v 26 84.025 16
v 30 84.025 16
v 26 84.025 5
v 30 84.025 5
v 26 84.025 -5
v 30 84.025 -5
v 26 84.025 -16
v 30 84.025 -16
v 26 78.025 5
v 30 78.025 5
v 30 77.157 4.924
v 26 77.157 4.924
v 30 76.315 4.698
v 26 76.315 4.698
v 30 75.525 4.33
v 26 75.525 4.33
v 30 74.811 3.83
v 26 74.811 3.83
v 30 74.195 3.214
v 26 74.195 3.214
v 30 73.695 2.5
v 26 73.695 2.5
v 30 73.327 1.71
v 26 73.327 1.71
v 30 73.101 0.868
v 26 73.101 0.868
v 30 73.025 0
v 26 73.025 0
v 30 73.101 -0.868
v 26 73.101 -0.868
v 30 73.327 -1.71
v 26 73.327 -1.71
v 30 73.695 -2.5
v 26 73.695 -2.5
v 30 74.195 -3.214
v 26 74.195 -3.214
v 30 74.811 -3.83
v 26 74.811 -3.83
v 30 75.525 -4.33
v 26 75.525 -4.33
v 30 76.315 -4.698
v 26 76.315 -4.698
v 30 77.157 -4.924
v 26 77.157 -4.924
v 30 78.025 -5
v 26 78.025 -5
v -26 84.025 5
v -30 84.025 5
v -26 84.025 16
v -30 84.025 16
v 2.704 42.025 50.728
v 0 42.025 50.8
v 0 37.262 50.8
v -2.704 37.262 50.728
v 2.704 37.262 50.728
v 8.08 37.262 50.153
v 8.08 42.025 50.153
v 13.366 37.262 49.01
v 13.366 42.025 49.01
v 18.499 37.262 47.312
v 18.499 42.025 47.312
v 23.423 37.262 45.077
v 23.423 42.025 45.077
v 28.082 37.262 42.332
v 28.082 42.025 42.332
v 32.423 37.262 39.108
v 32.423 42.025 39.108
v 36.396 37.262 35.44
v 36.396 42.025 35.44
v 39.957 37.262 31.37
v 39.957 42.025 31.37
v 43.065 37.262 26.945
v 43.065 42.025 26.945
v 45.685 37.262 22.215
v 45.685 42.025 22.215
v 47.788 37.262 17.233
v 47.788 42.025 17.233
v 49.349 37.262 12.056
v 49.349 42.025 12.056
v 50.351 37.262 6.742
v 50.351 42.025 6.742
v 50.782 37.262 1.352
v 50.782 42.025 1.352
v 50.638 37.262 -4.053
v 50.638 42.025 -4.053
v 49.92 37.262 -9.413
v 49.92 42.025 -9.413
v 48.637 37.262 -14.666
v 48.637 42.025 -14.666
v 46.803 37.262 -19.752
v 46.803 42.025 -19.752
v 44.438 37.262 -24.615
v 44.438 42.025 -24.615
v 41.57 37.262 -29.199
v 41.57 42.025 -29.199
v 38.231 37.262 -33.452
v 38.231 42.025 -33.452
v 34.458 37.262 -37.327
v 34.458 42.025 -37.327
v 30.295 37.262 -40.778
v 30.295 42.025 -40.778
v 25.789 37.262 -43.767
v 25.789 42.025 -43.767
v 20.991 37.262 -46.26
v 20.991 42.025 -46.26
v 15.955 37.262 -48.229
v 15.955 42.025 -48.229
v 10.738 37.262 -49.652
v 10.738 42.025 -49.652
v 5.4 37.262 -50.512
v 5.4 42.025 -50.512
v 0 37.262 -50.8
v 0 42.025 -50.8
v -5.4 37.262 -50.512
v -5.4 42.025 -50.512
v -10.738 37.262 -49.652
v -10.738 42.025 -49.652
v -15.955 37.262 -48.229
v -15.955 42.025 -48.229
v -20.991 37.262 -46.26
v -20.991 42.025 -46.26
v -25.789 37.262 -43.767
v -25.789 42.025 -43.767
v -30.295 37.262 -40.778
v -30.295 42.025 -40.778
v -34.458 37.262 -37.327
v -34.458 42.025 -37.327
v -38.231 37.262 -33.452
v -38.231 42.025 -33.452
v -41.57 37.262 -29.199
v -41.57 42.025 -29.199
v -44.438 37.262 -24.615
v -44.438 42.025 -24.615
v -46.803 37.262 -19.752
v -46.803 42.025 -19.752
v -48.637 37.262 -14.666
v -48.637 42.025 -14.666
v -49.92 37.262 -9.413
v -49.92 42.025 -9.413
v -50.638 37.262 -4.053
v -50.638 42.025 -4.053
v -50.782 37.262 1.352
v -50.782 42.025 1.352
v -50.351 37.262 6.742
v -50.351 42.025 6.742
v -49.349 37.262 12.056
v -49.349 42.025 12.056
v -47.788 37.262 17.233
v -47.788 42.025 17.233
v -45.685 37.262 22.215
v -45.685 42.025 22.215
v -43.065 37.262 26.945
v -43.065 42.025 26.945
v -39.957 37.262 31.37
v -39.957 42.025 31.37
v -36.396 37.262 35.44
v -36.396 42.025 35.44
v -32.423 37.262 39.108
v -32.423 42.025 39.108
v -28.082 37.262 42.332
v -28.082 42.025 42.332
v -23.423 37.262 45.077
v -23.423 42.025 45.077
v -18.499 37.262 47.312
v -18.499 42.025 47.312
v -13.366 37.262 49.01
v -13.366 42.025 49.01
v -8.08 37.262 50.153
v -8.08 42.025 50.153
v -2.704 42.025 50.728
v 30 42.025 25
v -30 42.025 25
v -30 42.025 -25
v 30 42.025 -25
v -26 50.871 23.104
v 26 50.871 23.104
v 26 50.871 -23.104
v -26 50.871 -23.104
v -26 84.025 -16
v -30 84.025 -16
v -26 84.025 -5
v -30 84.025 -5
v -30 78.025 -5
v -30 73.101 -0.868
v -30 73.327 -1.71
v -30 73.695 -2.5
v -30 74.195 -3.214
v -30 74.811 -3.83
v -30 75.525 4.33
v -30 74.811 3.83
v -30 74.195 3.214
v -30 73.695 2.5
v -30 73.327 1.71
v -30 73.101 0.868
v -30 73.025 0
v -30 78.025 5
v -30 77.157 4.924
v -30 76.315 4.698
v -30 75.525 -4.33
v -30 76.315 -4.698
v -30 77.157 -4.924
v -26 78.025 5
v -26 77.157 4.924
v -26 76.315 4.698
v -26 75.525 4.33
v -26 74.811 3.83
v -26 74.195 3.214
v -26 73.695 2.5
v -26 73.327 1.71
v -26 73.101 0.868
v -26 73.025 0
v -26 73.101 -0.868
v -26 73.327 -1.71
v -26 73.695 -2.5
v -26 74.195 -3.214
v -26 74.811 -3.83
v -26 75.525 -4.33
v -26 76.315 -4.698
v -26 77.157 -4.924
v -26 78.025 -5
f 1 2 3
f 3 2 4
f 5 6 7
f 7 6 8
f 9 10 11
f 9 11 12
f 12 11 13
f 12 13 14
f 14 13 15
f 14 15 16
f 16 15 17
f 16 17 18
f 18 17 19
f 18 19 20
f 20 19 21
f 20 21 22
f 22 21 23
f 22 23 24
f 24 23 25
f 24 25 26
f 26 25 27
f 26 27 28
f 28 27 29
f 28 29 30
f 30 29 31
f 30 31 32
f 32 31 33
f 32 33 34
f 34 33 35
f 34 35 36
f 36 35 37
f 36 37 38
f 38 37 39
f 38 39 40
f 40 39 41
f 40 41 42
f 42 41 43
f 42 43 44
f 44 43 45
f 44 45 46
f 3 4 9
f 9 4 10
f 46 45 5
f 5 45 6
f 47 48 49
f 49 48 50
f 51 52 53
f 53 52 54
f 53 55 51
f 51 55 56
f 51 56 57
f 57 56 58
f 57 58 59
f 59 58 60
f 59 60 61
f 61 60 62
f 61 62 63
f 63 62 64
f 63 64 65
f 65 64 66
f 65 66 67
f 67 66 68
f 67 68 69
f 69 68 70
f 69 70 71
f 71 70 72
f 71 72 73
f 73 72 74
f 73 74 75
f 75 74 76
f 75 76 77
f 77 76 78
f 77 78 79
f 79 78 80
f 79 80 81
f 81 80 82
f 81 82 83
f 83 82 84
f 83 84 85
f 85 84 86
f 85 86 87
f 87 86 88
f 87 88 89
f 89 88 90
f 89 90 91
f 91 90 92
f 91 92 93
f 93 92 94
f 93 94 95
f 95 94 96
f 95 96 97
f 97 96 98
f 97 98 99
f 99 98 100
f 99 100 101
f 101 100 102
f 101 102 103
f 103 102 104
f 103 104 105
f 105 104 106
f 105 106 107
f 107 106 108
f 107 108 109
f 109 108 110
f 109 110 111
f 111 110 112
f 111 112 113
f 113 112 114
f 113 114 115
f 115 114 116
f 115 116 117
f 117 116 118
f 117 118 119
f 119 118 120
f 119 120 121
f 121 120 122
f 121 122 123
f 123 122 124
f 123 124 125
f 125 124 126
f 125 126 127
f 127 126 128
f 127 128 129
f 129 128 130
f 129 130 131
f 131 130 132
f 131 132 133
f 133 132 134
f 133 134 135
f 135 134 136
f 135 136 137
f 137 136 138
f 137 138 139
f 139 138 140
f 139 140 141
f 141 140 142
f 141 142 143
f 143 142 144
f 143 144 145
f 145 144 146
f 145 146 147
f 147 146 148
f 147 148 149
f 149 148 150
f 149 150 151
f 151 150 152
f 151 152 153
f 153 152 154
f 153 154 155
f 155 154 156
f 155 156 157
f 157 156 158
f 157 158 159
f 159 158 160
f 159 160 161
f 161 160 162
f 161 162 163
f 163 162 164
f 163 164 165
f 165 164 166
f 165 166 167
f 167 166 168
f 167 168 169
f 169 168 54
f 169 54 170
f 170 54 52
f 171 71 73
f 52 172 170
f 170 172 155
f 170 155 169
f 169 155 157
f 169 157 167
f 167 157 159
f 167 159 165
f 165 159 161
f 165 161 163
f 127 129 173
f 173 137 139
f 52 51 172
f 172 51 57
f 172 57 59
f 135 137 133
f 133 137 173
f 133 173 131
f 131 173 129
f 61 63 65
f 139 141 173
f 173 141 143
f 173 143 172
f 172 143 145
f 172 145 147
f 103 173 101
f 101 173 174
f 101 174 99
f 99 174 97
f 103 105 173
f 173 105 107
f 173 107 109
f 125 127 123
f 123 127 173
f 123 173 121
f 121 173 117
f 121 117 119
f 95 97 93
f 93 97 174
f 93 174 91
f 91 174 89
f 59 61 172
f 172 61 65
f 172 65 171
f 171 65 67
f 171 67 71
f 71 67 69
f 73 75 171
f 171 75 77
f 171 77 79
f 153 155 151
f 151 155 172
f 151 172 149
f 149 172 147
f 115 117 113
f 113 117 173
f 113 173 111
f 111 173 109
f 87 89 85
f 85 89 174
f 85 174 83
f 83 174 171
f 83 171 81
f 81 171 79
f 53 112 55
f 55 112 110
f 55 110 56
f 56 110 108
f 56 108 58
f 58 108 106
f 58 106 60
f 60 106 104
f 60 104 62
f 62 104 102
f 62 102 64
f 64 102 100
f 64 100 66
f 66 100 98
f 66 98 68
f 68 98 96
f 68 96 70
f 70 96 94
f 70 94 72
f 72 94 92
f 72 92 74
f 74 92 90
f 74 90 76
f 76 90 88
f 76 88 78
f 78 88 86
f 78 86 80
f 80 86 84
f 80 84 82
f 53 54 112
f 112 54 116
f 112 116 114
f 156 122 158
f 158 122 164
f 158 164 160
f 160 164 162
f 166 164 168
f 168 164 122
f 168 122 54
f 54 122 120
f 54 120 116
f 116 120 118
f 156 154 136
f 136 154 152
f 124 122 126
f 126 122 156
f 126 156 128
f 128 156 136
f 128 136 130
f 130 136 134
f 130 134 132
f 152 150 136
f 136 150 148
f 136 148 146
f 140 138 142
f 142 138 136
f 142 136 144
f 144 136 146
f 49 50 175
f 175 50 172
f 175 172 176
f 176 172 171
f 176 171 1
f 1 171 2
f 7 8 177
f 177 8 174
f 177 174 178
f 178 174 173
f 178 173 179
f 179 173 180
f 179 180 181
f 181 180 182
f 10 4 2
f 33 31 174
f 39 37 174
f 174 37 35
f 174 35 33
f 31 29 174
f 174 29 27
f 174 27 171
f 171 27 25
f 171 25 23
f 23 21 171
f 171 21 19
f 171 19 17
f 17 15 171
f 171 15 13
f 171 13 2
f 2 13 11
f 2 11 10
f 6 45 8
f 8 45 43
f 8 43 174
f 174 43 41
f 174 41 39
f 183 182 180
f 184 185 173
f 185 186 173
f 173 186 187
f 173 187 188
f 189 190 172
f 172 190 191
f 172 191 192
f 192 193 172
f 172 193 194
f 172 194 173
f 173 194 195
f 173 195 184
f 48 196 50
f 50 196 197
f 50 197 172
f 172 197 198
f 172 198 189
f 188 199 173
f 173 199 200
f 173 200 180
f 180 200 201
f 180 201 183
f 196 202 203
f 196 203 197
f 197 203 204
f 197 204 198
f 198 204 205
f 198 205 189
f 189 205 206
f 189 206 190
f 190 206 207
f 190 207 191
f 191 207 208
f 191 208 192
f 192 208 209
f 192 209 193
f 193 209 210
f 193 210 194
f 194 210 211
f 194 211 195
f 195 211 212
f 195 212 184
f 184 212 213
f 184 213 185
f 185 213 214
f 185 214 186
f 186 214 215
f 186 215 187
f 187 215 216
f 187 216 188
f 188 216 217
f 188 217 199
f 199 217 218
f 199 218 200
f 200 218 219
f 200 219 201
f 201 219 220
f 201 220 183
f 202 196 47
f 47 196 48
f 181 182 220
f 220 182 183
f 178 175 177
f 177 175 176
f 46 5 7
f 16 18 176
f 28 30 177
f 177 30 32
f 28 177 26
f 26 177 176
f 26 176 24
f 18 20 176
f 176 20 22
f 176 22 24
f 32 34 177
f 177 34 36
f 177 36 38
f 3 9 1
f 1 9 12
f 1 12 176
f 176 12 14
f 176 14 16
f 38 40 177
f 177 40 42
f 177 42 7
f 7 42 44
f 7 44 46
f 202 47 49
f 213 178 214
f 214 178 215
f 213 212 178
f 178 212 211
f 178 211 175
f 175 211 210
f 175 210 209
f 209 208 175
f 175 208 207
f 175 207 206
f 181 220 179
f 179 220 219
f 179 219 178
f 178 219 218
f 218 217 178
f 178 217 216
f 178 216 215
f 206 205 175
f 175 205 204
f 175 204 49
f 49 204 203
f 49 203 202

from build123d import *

# Parameters (mm, degrees)
SKETCH2_R               = 50.8
BOSS_EXTRUDE1_DEPTH     = 4.7625
BOSS_EXTRUDE2_DEPTH     = 30
CUT_EXTRUDE2_DEPTH      = 128.159272666
CUT_EXTRUDE1_DEPTH      = 111.550805628
CUT_EXTRUDE1_DEPTH_BACK = 111.550805628
SKETCH5_W               = 52
SKETCH5_H               = 33.1537


with BuildPart() as part:
    # Sketch2 → Boss-Extrude1 (new body)
    with BuildSketch(Plane(origin=(0, 37.2625, 0), x_dir=(-1, 0, 0), z_dir=(0, 1, 0))):
        with Locations(Location((0, 0, 0), (0, 0, 270))):
            Circle(SKETCH2_R)
    extrude(amount=BOSS_EXTRUDE1_DEPTH)

    # Sketch4 → Boss-Extrude2 (add, symmetric)
    with BuildSketch(Plane(origin=(0, 0, 0), x_dir=(0, 0, -1), z_dir=(1, 0, 0))):
        Polygon((-25, 42.025), (25, 42.025), (16, 84.025), (-16, 84.025), align=None)
    extrude(amount=BOSS_EXTRUDE2_DEPTH, both=True)

    # Sketch6 → Cut-Extrude2 (cut, through all)
    with BuildSketch(Plane(origin=(30, 0, 0), x_dir=(0, 0, -1), z_dir=(1, 0, 0))):
        with BuildLine():
            Line((5, 78.025), (5, 84.025))
            Line((5, 84.025), (-5, 84.025))
            Line((-5, 84.025), (-5, 78.025))
            ThreePointArc((-5, 78.025), (0, 73.025), (5, 78.025))
        make_face()
    extrude(amount=-CUT_EXTRUDE2_DEPTH, mode=Mode.SUBTRACT)

    # Sketch5 → Cut-Extrude1 (cut, two sides: drawn at the far end of the back side and taken through both)
    with BuildSketch(Plane.XY.offset(-CUT_EXTRUDE1_DEPTH_BACK)):
        with Locations((0, 67.44815)):
            Rectangle(SKETCH5_W, SKETCH5_H)
    extrude(amount=CUT_EXTRUDE1_DEPTH + CUT_EXTRUDE1_DEPTH_BACK, mode=Mode.SUBTRACT)


solid = part.part
